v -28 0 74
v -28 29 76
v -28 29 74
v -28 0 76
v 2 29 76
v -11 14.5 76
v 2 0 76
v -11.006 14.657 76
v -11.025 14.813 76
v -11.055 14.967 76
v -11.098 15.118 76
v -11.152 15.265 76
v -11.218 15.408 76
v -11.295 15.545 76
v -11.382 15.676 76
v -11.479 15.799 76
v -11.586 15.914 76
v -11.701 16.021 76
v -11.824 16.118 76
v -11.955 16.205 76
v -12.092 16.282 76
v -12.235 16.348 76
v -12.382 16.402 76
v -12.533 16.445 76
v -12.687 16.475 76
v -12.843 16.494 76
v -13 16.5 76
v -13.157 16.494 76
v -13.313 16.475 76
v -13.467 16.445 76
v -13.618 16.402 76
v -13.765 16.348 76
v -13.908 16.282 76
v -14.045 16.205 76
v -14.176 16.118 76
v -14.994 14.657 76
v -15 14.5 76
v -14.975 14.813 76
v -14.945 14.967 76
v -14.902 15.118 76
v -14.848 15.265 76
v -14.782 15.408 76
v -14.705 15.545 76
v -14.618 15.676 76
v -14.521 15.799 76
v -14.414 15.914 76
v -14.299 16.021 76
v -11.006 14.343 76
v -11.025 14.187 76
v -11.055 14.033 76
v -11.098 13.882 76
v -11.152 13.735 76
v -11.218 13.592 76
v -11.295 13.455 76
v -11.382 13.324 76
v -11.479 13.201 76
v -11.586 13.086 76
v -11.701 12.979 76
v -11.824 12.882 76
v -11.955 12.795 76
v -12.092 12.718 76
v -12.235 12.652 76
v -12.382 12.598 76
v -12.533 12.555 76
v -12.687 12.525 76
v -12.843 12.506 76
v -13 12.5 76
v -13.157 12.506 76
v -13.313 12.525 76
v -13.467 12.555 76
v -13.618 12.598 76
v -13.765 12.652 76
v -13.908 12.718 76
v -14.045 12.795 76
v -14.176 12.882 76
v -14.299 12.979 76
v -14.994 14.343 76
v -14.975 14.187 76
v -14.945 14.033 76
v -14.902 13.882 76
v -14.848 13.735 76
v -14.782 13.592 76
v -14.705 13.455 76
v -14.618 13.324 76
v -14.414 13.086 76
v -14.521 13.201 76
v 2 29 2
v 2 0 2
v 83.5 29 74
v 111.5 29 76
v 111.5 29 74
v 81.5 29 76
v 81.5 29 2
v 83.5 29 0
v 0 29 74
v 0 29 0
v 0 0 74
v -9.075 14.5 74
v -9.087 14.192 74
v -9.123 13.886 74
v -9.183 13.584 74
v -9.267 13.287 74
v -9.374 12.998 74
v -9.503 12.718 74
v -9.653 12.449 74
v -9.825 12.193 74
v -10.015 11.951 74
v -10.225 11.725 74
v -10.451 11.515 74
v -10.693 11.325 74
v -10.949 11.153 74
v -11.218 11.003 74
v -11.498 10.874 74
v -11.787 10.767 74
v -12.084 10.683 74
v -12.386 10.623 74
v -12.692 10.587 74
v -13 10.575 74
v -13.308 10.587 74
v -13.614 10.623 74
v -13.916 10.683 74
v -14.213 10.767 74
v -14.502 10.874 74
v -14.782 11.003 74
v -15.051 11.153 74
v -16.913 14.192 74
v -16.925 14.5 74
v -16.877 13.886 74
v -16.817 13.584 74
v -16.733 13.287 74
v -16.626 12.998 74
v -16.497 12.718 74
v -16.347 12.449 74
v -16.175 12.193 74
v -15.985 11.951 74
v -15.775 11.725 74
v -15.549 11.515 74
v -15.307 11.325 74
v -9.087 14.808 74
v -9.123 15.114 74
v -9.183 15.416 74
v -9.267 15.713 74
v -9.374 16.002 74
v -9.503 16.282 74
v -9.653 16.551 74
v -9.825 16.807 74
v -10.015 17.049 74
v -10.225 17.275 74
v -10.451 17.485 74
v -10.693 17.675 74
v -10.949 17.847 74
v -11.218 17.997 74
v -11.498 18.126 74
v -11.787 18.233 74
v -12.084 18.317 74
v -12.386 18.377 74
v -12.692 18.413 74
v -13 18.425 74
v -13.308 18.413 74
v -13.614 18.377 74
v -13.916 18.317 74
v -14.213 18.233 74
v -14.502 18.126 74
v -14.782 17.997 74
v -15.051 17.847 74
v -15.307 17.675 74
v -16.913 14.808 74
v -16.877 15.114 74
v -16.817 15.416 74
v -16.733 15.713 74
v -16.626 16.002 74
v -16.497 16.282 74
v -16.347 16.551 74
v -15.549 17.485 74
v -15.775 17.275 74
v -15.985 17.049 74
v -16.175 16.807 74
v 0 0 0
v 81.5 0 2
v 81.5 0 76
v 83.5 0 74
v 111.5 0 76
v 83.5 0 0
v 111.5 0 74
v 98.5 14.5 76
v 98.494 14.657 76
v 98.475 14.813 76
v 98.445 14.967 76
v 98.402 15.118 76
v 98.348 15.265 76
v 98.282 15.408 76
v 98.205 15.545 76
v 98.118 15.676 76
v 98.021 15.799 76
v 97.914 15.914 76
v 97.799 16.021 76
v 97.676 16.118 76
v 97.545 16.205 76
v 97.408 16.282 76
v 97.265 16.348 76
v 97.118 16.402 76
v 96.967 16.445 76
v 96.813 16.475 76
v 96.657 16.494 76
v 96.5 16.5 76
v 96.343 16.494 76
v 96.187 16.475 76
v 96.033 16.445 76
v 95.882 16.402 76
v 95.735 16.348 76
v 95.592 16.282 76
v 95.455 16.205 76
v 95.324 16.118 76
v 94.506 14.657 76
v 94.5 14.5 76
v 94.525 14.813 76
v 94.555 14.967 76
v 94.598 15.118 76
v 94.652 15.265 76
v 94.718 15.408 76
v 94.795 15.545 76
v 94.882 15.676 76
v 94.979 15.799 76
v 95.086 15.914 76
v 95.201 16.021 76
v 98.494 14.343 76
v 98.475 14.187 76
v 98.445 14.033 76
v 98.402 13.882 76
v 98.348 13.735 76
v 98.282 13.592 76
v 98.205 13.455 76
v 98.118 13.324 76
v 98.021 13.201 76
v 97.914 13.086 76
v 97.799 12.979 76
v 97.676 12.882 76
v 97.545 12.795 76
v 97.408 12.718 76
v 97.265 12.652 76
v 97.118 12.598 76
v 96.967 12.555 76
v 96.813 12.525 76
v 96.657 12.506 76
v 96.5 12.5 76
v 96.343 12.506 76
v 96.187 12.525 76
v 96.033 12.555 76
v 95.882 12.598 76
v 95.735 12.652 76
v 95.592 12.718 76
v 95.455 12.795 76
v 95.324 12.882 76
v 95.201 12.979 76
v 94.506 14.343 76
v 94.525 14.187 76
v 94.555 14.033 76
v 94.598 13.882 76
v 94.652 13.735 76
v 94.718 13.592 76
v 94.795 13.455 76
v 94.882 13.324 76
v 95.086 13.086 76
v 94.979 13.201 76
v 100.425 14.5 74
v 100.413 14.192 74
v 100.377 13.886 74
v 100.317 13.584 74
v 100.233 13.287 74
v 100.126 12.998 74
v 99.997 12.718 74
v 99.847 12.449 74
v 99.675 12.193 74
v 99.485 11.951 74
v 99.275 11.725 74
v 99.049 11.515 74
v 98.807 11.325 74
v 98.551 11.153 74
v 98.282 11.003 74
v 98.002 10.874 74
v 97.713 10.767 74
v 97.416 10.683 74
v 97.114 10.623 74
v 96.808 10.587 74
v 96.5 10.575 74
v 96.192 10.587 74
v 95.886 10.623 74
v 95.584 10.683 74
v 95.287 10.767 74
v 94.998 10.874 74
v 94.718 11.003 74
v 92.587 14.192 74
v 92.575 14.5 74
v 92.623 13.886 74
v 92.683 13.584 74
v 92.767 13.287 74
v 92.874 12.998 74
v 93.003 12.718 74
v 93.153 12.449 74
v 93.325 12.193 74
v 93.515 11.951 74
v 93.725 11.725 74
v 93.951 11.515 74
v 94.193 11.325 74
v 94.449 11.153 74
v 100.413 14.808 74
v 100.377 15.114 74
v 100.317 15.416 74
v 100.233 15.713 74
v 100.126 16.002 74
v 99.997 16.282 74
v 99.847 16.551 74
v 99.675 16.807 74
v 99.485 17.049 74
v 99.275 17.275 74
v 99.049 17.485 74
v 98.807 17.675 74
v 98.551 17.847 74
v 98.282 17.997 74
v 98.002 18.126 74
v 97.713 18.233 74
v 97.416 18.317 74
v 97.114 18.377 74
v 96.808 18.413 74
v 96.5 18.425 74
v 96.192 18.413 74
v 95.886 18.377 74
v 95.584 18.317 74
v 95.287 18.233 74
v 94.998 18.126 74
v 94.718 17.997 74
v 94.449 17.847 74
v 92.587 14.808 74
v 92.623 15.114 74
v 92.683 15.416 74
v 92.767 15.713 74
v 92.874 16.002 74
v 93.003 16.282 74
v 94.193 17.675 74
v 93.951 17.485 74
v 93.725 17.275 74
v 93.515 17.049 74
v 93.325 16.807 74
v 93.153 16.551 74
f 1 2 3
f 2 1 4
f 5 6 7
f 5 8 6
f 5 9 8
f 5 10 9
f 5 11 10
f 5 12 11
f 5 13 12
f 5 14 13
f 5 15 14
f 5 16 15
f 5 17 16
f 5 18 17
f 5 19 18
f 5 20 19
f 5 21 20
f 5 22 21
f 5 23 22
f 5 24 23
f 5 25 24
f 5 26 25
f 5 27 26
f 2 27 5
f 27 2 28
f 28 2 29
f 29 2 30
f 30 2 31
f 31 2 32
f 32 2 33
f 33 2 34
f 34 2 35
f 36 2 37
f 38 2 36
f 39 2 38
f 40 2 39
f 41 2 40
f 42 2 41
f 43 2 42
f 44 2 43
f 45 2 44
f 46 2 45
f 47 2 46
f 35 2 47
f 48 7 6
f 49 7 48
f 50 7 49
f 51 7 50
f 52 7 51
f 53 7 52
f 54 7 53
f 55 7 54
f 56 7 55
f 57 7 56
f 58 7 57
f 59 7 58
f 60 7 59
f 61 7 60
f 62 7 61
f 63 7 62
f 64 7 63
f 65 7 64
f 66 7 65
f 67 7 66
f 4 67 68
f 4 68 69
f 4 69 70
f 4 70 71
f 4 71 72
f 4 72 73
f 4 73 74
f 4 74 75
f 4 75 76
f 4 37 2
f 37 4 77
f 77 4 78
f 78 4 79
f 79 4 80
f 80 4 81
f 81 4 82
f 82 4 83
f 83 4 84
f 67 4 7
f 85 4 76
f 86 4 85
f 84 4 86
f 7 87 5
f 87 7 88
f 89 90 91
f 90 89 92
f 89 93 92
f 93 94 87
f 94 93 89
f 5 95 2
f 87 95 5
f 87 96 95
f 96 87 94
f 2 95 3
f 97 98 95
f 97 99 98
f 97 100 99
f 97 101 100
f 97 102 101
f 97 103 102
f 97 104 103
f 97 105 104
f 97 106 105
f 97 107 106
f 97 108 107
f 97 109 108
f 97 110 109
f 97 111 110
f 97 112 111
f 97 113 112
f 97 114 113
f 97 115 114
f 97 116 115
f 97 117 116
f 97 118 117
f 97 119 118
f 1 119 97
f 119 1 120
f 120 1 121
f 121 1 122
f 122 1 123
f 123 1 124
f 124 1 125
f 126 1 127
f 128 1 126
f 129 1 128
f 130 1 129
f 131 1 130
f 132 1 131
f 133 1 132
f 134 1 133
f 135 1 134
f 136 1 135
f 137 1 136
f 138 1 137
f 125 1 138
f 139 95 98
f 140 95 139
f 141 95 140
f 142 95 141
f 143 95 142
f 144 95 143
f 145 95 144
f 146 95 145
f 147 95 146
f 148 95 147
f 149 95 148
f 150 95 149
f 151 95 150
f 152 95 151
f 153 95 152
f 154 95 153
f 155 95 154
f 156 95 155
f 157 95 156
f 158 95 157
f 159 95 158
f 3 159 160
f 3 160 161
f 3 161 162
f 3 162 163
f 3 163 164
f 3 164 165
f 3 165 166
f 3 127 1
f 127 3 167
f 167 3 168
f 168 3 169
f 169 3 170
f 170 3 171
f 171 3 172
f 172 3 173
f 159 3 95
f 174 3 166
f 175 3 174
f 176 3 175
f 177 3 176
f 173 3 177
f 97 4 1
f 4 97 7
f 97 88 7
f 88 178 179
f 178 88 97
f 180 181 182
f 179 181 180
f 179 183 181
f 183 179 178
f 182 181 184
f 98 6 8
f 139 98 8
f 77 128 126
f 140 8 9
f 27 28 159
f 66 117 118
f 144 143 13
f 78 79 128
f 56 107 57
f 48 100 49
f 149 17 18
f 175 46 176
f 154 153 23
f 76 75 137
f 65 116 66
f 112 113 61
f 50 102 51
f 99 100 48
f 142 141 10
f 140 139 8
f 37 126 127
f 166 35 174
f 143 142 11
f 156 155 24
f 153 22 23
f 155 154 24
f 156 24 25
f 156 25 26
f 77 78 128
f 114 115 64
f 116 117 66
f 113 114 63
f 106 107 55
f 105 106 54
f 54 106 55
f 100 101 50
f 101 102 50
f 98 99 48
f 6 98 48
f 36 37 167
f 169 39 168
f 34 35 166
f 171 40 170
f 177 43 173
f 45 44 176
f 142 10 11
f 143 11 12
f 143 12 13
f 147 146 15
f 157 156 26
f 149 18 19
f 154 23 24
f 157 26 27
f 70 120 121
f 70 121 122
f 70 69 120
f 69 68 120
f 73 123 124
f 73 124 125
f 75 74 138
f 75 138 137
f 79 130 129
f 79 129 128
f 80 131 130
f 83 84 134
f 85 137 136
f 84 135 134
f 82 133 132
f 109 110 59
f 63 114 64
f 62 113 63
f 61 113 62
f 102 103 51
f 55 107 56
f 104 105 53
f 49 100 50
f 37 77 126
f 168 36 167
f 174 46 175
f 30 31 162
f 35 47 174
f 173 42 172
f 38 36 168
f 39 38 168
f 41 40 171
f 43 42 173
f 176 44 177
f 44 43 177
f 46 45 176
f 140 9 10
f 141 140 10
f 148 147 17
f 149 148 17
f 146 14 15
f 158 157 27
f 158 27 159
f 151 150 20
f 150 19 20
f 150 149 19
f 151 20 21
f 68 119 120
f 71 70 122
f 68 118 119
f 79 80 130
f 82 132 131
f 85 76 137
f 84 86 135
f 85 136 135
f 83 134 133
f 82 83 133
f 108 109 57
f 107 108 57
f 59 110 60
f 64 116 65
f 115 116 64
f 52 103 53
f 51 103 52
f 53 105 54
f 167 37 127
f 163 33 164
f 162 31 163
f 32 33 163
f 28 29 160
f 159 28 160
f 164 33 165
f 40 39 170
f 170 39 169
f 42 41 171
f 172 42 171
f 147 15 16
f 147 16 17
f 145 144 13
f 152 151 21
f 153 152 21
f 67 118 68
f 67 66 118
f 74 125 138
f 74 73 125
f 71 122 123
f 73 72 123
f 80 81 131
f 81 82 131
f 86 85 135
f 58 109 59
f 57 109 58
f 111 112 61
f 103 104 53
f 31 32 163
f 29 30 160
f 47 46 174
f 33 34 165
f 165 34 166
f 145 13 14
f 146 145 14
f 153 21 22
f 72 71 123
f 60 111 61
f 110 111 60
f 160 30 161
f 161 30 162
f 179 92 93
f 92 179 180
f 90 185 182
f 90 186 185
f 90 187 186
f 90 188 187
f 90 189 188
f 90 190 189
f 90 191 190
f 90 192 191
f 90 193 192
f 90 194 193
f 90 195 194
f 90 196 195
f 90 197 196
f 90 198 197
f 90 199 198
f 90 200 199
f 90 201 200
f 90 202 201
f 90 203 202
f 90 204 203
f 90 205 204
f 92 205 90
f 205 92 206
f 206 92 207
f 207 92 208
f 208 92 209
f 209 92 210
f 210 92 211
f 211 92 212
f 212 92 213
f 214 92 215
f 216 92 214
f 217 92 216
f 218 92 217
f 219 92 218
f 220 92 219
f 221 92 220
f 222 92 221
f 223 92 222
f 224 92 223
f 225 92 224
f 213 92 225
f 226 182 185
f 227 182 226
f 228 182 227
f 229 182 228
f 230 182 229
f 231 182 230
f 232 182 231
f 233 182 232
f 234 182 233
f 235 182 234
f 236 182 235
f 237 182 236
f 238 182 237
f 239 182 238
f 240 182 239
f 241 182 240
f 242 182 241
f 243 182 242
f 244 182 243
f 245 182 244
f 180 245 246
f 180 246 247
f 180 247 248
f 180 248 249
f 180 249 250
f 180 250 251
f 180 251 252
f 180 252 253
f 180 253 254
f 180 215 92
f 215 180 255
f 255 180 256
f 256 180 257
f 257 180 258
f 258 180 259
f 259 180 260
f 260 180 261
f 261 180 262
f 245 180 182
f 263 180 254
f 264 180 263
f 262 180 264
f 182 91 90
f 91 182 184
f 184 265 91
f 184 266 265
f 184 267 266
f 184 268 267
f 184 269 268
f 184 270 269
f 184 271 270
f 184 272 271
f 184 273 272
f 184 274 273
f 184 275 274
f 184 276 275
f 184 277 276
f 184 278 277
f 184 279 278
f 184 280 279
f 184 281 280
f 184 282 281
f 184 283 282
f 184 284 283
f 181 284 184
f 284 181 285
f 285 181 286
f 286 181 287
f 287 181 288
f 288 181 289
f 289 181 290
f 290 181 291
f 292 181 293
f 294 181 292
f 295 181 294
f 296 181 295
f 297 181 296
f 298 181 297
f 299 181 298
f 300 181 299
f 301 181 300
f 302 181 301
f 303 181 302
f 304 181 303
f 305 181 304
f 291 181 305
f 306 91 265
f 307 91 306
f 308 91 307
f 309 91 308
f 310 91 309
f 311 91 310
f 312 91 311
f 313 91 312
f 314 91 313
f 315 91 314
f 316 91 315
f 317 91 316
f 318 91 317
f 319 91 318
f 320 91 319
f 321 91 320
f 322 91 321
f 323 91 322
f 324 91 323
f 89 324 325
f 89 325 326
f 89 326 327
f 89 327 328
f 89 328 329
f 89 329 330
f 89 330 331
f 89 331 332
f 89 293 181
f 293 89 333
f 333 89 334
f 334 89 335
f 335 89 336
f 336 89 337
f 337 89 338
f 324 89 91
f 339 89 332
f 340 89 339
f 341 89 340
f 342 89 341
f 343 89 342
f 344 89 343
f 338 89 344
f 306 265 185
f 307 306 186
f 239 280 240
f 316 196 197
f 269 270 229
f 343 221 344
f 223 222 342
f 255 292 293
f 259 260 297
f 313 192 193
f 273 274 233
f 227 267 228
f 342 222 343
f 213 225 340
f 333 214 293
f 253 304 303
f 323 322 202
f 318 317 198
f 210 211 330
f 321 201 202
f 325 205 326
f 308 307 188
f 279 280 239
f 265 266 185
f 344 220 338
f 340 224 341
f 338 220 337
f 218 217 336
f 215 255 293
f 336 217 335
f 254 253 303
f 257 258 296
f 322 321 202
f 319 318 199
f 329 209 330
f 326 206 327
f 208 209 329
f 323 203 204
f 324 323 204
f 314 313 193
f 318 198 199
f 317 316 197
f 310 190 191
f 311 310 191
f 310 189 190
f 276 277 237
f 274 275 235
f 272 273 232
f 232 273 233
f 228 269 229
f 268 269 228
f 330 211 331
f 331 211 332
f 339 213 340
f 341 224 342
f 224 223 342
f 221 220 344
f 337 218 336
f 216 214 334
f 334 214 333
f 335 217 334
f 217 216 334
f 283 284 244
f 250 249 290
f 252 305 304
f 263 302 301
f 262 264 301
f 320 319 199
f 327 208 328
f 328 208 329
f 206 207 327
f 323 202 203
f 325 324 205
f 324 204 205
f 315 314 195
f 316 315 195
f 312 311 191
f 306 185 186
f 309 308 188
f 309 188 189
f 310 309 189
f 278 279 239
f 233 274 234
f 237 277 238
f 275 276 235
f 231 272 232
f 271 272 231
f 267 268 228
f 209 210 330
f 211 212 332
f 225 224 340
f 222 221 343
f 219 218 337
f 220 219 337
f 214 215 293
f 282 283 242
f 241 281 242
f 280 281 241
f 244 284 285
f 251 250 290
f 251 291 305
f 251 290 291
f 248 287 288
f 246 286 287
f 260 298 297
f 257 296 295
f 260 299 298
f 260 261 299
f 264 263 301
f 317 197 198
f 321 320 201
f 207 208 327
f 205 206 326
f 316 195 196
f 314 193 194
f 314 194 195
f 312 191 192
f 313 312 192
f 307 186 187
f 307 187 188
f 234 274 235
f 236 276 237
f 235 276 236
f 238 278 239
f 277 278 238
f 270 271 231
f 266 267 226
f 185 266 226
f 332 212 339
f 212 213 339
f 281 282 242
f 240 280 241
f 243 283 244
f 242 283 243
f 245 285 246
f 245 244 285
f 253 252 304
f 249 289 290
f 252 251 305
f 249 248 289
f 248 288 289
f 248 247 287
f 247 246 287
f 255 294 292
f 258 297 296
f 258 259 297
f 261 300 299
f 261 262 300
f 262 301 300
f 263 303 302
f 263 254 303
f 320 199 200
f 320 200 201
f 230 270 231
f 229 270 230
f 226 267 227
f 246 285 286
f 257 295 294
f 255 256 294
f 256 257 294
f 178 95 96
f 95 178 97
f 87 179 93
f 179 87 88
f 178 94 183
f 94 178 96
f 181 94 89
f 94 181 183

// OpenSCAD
height = 29;
depth = 74;
width = 81.5;
thickness = 2;
mountingSpacerWidth = 30;

screwHoleDiameterOut = 4;
screwHoleDiameterIn = 7.85;

module screwHole() {
    cylinder(h=thickness, r1=screwHoleDiameterIn / 2, r2 = screwHoleDiameterOut / 2, center=false, $fn=80);
}

// Front
cube([width, height, thickness]);

// Right
cube([thickness, height, depth]);

// Left
translate([width, 0, 0])
cube([thickness, height, depth]);

// Mounting spacer
// Right
difference() {
    translate([-mountingSpacerWidth + thickness, 0, depth])
    cube([mountingSpacerWidth, height, thickness]);

    translate([-mountingSpacerWidth / 2 + thickness, height / 2, depth])
    screwHole();
}

// Left
difference() {
    translate([width, 0, depth])
    cube([mountingSpacerWidth, height, thickness]);

    translate([width + mountingSpacerWidth / 2, height / 2, depth])
    #screwHole();
}
